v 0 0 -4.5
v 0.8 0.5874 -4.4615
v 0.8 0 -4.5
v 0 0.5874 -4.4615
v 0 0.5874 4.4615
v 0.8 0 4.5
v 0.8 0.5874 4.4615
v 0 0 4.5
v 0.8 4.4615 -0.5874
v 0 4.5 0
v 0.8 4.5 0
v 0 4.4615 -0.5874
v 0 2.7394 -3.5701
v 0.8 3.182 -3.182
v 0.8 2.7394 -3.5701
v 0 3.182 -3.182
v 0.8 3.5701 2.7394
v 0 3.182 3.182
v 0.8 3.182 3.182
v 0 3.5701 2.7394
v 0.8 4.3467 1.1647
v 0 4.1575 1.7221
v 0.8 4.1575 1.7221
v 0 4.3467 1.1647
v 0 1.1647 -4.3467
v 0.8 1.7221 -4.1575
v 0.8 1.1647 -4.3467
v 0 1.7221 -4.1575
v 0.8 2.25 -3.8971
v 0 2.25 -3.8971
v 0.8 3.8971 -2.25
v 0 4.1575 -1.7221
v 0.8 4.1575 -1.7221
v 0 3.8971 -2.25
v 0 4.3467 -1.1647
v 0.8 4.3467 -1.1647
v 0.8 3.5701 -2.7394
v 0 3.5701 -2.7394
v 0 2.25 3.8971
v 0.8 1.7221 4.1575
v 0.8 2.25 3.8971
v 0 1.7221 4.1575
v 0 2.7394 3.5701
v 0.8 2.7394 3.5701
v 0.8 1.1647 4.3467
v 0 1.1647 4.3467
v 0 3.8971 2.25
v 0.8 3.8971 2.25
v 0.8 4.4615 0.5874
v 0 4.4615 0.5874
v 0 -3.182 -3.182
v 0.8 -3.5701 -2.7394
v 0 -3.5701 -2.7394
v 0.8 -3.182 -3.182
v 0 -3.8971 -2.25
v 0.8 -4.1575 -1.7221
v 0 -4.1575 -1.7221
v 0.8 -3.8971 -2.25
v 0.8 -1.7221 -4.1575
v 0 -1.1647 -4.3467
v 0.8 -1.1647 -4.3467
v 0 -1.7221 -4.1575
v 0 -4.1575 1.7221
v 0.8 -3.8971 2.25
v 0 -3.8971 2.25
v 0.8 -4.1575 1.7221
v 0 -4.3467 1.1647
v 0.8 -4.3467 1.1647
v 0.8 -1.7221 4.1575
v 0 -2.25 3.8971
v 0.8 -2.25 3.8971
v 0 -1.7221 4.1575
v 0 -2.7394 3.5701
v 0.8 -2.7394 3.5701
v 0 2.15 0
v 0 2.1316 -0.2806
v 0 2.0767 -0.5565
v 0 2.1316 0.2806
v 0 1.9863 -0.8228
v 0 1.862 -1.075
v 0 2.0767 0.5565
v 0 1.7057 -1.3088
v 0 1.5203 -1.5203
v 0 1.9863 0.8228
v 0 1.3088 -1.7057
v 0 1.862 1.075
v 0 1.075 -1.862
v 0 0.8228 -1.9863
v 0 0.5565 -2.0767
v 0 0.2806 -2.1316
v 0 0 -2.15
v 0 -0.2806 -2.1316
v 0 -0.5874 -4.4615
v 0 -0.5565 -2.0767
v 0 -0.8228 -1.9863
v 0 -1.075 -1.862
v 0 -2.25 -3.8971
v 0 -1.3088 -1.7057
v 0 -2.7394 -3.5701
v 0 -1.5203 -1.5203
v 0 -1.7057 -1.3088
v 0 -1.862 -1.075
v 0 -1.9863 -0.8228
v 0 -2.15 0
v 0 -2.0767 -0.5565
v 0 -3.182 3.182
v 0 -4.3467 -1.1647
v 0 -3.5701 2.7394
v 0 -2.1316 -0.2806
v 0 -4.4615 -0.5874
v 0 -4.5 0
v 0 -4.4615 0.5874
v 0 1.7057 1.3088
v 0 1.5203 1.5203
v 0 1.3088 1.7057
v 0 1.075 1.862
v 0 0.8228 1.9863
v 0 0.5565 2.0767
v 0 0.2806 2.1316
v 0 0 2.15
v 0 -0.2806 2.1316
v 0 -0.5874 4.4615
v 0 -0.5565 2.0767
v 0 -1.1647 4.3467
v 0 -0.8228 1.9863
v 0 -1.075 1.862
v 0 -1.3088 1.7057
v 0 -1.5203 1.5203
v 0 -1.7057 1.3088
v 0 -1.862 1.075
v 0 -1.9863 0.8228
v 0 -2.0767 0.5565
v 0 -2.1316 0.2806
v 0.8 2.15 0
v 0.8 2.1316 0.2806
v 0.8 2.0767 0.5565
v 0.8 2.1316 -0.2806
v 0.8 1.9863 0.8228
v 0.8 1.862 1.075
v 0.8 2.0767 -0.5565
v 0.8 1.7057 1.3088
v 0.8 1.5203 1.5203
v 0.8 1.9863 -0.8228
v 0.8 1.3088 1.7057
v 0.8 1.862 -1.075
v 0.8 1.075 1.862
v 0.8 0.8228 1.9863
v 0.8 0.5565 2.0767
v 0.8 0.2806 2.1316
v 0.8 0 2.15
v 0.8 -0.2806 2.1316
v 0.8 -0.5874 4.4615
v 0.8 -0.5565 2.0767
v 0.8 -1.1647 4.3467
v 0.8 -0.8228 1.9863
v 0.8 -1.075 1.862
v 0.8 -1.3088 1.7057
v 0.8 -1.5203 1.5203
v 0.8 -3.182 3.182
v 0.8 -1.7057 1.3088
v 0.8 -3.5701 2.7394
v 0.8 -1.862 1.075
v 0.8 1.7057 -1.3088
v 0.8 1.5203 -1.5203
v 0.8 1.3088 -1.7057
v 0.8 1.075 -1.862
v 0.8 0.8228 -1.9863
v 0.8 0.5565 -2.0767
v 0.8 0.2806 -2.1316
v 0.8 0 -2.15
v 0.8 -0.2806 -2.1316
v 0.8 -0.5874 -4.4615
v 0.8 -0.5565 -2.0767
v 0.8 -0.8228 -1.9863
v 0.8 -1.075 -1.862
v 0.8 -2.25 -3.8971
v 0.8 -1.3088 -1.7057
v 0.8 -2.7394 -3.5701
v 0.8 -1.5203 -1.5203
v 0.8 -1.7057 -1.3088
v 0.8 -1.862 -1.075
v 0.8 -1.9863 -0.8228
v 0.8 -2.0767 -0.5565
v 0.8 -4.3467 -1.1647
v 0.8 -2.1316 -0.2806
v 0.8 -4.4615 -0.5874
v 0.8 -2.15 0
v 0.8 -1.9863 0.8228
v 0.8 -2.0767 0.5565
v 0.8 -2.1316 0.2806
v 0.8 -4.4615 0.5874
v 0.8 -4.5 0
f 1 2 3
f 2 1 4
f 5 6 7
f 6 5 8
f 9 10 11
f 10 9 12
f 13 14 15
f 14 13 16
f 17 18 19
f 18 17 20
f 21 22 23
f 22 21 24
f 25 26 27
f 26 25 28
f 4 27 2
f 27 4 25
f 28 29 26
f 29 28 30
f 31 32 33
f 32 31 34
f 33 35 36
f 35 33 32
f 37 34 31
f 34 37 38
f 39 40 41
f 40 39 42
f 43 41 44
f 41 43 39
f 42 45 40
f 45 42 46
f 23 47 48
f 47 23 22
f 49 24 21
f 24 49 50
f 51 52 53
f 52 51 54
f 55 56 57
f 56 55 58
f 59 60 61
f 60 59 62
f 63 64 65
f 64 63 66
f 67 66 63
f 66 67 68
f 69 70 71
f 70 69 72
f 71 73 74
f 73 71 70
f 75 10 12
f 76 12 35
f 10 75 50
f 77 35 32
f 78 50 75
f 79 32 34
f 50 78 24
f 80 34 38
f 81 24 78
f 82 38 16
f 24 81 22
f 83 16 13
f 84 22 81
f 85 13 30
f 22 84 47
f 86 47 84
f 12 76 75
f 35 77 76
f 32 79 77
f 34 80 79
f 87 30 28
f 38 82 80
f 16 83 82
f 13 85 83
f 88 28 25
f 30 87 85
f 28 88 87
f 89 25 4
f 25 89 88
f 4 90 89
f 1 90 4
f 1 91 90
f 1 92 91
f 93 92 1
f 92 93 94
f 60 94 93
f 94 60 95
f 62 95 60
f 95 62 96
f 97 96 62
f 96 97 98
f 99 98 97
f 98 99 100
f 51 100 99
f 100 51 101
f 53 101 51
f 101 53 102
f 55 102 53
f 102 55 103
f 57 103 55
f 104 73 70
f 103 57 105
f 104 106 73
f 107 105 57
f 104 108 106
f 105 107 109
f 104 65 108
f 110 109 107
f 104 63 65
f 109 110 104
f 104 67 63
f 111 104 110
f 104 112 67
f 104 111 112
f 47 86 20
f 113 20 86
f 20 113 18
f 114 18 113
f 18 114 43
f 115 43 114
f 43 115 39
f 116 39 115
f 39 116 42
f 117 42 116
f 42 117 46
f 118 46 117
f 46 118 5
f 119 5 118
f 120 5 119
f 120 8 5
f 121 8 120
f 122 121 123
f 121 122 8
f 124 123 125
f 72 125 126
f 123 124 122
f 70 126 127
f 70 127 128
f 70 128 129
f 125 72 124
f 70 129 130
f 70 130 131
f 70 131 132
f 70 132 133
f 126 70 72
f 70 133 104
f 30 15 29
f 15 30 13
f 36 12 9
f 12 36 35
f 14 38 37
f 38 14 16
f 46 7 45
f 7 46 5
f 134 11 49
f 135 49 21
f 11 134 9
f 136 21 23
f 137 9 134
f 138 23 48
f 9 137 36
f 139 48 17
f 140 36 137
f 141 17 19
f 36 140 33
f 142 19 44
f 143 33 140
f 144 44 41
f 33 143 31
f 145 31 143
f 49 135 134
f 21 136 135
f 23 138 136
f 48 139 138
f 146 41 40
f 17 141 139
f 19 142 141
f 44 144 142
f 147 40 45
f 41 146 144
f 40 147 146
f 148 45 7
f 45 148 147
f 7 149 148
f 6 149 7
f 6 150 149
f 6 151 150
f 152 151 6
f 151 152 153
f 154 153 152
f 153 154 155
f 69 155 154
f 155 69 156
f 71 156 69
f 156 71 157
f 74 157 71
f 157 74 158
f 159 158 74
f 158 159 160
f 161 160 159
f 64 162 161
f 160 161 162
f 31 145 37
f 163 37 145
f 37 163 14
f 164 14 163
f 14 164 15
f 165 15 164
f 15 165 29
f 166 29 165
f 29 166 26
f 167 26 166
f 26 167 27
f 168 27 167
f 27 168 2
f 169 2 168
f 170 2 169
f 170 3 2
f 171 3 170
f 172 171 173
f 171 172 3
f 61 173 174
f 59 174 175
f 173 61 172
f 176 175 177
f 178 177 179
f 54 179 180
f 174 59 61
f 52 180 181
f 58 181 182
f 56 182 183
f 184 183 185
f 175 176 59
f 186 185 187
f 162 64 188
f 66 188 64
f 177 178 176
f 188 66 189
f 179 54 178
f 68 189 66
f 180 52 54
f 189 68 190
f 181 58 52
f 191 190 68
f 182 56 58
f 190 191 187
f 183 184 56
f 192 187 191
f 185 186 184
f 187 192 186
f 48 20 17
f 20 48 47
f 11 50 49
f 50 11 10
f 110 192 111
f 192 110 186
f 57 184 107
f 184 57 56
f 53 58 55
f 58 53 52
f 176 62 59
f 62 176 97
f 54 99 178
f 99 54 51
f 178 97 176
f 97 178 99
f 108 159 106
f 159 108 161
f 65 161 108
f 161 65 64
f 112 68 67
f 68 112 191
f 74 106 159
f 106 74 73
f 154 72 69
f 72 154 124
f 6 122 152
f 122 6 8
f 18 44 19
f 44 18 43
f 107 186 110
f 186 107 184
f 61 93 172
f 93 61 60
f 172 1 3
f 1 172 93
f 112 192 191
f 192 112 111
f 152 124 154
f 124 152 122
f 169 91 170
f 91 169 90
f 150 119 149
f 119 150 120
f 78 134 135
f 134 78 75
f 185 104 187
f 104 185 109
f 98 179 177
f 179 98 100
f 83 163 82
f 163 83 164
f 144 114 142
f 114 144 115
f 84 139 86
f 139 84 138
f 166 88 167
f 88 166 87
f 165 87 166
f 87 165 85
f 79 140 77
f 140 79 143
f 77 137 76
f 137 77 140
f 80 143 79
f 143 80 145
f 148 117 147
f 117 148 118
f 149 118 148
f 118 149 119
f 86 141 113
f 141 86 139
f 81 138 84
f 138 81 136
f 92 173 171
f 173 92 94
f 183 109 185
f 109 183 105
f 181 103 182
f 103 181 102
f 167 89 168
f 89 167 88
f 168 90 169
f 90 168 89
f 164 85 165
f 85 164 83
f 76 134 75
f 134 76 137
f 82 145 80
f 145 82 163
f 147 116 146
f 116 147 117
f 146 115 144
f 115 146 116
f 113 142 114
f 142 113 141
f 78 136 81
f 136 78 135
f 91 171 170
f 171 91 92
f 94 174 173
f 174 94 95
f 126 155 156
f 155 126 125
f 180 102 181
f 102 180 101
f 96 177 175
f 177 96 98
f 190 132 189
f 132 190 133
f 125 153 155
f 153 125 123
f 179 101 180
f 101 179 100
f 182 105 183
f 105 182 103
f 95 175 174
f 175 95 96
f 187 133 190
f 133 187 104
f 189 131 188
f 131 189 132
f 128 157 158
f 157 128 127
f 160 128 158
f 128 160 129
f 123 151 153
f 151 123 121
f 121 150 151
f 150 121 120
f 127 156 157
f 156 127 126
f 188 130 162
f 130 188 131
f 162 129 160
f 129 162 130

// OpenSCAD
/**********************************************************************************************************************
 **
 ** parts/vitamins/washer_M4.scad
 **
 ** This file renders a washer of the dimensions specified by the file name.
 **
 **********************************************************************************************************************/

$fn = 48;

rotate([0, 90, 0])
	difference() {
		cylinder(d = 9.0, h = 0.8);
		cylinder(d = 4.3, h = 0.8);
	}
